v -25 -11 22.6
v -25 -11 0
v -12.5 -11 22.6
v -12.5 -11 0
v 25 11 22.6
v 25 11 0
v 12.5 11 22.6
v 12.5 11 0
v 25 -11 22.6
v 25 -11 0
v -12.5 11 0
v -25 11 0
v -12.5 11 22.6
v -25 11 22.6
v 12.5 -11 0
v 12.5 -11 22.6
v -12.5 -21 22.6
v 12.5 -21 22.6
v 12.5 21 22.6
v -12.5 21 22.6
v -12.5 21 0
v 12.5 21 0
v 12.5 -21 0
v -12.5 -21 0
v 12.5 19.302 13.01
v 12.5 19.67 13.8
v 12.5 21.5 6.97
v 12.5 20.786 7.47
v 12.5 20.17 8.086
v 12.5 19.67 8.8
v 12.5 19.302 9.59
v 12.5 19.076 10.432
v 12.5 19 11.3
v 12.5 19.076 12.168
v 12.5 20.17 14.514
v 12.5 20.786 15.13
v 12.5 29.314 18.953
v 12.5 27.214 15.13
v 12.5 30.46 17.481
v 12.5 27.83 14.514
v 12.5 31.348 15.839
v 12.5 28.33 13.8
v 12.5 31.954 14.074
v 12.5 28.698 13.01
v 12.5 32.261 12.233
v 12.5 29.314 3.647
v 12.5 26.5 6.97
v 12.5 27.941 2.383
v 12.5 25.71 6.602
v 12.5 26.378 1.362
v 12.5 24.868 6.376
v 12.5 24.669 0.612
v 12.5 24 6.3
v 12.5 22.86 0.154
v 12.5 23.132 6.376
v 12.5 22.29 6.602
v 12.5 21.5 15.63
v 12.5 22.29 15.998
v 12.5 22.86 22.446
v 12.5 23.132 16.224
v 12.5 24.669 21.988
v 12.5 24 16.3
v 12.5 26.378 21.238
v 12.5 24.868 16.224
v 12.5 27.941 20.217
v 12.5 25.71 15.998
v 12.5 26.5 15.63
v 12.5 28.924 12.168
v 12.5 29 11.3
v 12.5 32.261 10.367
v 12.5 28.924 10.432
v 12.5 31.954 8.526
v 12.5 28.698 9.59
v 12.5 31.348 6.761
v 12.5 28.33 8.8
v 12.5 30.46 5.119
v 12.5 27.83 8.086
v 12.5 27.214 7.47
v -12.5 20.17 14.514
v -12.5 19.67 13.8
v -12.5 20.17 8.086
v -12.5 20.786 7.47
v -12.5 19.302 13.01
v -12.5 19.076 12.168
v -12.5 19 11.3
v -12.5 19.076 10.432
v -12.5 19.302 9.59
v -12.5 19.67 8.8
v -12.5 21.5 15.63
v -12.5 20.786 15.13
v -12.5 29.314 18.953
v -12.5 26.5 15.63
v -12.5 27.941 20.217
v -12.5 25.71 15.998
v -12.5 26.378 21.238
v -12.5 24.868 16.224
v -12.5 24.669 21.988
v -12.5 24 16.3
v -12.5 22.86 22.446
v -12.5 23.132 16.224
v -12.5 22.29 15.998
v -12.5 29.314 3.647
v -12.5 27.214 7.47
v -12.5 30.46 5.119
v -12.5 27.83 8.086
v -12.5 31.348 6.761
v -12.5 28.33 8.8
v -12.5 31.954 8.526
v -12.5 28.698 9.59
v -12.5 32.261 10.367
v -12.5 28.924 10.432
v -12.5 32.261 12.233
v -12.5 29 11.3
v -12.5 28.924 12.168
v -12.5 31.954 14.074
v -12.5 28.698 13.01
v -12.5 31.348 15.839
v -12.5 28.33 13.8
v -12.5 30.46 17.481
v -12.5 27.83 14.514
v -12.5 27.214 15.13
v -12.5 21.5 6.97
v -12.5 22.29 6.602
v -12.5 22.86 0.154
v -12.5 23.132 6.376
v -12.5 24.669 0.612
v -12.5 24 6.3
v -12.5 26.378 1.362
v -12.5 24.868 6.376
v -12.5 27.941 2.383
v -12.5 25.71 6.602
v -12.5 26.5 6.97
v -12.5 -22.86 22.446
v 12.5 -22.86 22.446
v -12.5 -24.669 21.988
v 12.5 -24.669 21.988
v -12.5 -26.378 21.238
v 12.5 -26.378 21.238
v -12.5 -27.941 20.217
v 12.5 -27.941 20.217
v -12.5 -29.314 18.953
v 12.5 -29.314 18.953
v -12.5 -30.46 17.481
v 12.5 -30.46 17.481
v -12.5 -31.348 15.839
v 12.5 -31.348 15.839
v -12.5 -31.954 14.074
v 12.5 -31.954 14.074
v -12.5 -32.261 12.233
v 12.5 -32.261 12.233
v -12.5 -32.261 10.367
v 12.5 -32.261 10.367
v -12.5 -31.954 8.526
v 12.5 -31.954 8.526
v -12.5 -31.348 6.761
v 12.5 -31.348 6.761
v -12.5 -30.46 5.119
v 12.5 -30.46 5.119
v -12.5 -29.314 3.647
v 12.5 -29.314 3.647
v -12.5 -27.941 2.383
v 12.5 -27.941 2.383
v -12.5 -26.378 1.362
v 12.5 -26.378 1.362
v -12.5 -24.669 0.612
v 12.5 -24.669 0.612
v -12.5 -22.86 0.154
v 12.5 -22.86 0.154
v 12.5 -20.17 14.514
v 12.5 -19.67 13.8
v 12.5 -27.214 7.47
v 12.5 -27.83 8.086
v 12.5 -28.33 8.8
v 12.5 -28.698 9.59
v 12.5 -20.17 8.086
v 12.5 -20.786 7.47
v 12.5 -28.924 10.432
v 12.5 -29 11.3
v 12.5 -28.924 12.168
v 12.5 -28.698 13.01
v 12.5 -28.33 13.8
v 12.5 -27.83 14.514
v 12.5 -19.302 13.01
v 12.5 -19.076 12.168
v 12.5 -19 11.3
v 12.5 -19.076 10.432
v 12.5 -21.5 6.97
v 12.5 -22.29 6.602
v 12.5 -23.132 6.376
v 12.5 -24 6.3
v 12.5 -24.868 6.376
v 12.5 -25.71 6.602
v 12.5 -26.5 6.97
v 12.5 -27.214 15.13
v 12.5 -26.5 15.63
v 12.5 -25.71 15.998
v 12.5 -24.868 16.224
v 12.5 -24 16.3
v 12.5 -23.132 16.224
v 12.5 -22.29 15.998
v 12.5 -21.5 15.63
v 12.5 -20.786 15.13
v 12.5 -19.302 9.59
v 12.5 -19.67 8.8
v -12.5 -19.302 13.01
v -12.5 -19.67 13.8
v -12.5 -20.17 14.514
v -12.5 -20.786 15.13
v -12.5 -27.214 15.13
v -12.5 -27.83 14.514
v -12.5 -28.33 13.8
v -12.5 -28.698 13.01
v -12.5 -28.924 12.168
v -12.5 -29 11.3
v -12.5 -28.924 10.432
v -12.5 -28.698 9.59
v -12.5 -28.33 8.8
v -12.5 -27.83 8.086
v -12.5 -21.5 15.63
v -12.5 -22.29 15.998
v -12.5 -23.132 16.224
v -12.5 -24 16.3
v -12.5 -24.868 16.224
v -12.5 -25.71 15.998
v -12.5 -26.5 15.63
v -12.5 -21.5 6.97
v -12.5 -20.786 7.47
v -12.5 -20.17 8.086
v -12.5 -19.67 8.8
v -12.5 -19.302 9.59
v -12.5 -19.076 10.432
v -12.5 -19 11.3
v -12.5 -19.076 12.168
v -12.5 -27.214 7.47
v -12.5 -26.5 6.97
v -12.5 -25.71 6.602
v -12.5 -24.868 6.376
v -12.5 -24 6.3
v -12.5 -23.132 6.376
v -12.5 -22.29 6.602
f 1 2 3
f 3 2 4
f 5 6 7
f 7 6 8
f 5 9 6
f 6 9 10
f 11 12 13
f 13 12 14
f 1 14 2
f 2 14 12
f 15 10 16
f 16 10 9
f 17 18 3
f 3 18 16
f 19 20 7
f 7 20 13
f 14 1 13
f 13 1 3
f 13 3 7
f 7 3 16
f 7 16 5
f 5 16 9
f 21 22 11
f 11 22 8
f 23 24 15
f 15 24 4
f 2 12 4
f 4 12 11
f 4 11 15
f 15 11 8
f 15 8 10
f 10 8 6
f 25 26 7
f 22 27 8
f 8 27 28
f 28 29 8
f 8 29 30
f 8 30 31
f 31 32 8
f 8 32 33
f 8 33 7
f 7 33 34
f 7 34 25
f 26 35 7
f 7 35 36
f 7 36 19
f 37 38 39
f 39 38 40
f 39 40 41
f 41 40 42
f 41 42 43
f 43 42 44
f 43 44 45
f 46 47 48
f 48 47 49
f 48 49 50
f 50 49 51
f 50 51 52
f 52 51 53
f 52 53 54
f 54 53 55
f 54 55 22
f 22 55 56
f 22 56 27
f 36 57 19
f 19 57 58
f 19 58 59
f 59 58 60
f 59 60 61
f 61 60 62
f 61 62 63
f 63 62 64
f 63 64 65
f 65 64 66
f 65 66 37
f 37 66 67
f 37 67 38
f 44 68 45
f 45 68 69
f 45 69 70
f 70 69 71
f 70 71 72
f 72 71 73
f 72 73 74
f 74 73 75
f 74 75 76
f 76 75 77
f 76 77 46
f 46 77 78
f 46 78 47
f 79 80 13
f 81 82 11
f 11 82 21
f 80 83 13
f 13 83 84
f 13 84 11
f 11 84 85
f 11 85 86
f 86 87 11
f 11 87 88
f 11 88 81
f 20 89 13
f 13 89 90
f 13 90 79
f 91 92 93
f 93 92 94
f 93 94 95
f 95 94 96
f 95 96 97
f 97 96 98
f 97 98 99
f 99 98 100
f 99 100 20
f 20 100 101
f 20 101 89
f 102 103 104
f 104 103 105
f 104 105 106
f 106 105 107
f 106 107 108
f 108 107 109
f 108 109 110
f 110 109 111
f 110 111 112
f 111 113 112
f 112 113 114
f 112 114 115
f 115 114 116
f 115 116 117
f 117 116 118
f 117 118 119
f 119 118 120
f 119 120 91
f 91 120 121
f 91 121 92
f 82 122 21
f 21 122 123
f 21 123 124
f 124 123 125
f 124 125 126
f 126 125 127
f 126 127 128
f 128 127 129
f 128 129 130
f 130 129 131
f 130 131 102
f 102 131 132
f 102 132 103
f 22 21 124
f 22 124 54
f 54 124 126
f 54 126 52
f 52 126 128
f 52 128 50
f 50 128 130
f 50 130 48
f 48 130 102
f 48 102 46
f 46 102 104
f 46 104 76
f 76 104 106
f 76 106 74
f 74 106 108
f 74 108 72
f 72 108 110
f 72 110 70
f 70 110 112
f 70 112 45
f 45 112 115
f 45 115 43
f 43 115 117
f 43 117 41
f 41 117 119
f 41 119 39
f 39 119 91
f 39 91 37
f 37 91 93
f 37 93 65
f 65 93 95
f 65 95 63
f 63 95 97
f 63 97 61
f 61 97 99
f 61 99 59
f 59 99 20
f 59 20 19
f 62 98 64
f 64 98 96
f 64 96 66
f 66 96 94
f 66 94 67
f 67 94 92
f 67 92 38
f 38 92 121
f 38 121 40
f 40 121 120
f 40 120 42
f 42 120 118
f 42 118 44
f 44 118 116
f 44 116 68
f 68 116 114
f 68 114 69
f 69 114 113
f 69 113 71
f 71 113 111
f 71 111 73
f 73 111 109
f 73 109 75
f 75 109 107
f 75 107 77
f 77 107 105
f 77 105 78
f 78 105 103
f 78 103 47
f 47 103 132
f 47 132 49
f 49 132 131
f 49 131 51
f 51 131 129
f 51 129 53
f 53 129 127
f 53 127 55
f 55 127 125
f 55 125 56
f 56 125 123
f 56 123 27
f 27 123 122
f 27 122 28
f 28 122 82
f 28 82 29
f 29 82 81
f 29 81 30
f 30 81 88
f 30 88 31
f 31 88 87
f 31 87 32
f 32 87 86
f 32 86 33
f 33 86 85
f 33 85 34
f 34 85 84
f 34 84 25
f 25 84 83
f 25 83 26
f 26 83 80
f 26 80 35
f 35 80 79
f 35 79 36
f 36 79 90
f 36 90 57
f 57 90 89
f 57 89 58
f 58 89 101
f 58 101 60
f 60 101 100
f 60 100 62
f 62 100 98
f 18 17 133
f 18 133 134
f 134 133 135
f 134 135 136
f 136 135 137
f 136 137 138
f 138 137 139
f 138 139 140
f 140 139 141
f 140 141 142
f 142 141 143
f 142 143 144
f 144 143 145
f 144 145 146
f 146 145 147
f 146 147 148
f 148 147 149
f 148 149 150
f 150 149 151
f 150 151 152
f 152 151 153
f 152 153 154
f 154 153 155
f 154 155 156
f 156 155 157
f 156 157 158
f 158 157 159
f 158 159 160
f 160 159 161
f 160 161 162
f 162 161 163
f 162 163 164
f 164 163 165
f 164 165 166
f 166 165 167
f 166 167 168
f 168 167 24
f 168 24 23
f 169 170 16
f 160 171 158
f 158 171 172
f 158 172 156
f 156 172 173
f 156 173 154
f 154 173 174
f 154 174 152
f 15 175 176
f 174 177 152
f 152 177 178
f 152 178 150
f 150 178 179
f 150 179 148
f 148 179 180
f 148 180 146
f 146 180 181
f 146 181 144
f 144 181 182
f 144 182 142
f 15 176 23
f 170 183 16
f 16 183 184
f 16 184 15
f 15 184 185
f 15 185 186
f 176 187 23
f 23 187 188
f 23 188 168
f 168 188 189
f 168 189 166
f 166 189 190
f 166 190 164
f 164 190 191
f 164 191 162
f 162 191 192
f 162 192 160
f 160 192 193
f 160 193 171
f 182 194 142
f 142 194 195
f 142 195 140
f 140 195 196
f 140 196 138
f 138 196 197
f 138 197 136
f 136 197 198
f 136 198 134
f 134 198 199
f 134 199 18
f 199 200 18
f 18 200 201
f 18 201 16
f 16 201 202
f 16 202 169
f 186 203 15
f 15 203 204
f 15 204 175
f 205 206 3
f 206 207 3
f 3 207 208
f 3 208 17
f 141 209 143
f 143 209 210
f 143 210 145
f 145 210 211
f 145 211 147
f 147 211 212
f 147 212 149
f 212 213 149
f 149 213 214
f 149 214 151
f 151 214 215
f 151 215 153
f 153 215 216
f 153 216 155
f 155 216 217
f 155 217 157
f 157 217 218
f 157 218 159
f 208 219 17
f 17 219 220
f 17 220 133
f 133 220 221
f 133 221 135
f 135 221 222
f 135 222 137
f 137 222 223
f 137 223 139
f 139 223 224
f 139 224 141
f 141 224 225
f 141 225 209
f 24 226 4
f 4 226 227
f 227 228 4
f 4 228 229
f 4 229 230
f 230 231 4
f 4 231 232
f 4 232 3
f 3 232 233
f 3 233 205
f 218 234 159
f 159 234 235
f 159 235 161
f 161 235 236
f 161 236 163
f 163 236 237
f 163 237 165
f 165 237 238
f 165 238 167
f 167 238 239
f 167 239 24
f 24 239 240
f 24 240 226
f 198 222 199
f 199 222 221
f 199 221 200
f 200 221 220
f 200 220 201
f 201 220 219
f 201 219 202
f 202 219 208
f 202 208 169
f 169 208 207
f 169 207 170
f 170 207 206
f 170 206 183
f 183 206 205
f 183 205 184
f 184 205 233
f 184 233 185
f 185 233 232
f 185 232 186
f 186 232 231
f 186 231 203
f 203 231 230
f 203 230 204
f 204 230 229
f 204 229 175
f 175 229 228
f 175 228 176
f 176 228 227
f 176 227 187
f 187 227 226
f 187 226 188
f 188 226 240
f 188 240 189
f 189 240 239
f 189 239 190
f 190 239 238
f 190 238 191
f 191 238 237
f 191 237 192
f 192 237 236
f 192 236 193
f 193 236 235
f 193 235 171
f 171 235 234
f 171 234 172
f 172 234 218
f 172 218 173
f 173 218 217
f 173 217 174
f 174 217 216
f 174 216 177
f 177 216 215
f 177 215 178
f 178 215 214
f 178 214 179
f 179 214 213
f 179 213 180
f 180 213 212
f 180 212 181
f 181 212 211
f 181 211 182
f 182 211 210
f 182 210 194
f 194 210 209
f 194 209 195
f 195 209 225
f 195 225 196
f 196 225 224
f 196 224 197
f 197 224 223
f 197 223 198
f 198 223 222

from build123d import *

# Parameters (mm, degrees)
SKETCH1_W           = 50
SKETCH1_H           = 22
BOSS_EXTRUDE1_DEPTH = 22.6
SKETCH3_R           = 5
BOSS_EXTRUDE2_DEPTH = 12.5


with BuildPart() as part:
    # Sketch1 → Boss-Extrude1 (new body)
    with BuildSketch(Plane.XY):
        Rectangle(SKETCH1_W, SKETCH1_H)
    extrude(amount=BOSS_EXTRUDE1_DEPTH)

    # Sketch3 → Boss-Extrude2 (add, symmetric)
    with BuildSketch(Plane(origin=(0, 0, 0), x_dir=(0, 0, -1), z_dir=(1, 0, 0))):
        with BuildLine():
            Line((-22.6, 11), (-22.6, 21))
            ThreePointArc((-22.6, 21), (-11.3, 32.3), (0, 21))
            Line((0, 21), (0, 11))
            Line((0, 11), (-22.6, 11))
        make_face()
        with Locations((-11.3, 24)):
            Circle(SKETCH3_R, mode=Mode.SUBTRACT)
    boss_extrude2 = extrude(amount=BOSS_EXTRUDE2_DEPTH, both=True)

    # Mirror1: Boss-Extrude2 across plane
    add(boss_extrude2.mirror(Plane.ZX))


solid = part.part
